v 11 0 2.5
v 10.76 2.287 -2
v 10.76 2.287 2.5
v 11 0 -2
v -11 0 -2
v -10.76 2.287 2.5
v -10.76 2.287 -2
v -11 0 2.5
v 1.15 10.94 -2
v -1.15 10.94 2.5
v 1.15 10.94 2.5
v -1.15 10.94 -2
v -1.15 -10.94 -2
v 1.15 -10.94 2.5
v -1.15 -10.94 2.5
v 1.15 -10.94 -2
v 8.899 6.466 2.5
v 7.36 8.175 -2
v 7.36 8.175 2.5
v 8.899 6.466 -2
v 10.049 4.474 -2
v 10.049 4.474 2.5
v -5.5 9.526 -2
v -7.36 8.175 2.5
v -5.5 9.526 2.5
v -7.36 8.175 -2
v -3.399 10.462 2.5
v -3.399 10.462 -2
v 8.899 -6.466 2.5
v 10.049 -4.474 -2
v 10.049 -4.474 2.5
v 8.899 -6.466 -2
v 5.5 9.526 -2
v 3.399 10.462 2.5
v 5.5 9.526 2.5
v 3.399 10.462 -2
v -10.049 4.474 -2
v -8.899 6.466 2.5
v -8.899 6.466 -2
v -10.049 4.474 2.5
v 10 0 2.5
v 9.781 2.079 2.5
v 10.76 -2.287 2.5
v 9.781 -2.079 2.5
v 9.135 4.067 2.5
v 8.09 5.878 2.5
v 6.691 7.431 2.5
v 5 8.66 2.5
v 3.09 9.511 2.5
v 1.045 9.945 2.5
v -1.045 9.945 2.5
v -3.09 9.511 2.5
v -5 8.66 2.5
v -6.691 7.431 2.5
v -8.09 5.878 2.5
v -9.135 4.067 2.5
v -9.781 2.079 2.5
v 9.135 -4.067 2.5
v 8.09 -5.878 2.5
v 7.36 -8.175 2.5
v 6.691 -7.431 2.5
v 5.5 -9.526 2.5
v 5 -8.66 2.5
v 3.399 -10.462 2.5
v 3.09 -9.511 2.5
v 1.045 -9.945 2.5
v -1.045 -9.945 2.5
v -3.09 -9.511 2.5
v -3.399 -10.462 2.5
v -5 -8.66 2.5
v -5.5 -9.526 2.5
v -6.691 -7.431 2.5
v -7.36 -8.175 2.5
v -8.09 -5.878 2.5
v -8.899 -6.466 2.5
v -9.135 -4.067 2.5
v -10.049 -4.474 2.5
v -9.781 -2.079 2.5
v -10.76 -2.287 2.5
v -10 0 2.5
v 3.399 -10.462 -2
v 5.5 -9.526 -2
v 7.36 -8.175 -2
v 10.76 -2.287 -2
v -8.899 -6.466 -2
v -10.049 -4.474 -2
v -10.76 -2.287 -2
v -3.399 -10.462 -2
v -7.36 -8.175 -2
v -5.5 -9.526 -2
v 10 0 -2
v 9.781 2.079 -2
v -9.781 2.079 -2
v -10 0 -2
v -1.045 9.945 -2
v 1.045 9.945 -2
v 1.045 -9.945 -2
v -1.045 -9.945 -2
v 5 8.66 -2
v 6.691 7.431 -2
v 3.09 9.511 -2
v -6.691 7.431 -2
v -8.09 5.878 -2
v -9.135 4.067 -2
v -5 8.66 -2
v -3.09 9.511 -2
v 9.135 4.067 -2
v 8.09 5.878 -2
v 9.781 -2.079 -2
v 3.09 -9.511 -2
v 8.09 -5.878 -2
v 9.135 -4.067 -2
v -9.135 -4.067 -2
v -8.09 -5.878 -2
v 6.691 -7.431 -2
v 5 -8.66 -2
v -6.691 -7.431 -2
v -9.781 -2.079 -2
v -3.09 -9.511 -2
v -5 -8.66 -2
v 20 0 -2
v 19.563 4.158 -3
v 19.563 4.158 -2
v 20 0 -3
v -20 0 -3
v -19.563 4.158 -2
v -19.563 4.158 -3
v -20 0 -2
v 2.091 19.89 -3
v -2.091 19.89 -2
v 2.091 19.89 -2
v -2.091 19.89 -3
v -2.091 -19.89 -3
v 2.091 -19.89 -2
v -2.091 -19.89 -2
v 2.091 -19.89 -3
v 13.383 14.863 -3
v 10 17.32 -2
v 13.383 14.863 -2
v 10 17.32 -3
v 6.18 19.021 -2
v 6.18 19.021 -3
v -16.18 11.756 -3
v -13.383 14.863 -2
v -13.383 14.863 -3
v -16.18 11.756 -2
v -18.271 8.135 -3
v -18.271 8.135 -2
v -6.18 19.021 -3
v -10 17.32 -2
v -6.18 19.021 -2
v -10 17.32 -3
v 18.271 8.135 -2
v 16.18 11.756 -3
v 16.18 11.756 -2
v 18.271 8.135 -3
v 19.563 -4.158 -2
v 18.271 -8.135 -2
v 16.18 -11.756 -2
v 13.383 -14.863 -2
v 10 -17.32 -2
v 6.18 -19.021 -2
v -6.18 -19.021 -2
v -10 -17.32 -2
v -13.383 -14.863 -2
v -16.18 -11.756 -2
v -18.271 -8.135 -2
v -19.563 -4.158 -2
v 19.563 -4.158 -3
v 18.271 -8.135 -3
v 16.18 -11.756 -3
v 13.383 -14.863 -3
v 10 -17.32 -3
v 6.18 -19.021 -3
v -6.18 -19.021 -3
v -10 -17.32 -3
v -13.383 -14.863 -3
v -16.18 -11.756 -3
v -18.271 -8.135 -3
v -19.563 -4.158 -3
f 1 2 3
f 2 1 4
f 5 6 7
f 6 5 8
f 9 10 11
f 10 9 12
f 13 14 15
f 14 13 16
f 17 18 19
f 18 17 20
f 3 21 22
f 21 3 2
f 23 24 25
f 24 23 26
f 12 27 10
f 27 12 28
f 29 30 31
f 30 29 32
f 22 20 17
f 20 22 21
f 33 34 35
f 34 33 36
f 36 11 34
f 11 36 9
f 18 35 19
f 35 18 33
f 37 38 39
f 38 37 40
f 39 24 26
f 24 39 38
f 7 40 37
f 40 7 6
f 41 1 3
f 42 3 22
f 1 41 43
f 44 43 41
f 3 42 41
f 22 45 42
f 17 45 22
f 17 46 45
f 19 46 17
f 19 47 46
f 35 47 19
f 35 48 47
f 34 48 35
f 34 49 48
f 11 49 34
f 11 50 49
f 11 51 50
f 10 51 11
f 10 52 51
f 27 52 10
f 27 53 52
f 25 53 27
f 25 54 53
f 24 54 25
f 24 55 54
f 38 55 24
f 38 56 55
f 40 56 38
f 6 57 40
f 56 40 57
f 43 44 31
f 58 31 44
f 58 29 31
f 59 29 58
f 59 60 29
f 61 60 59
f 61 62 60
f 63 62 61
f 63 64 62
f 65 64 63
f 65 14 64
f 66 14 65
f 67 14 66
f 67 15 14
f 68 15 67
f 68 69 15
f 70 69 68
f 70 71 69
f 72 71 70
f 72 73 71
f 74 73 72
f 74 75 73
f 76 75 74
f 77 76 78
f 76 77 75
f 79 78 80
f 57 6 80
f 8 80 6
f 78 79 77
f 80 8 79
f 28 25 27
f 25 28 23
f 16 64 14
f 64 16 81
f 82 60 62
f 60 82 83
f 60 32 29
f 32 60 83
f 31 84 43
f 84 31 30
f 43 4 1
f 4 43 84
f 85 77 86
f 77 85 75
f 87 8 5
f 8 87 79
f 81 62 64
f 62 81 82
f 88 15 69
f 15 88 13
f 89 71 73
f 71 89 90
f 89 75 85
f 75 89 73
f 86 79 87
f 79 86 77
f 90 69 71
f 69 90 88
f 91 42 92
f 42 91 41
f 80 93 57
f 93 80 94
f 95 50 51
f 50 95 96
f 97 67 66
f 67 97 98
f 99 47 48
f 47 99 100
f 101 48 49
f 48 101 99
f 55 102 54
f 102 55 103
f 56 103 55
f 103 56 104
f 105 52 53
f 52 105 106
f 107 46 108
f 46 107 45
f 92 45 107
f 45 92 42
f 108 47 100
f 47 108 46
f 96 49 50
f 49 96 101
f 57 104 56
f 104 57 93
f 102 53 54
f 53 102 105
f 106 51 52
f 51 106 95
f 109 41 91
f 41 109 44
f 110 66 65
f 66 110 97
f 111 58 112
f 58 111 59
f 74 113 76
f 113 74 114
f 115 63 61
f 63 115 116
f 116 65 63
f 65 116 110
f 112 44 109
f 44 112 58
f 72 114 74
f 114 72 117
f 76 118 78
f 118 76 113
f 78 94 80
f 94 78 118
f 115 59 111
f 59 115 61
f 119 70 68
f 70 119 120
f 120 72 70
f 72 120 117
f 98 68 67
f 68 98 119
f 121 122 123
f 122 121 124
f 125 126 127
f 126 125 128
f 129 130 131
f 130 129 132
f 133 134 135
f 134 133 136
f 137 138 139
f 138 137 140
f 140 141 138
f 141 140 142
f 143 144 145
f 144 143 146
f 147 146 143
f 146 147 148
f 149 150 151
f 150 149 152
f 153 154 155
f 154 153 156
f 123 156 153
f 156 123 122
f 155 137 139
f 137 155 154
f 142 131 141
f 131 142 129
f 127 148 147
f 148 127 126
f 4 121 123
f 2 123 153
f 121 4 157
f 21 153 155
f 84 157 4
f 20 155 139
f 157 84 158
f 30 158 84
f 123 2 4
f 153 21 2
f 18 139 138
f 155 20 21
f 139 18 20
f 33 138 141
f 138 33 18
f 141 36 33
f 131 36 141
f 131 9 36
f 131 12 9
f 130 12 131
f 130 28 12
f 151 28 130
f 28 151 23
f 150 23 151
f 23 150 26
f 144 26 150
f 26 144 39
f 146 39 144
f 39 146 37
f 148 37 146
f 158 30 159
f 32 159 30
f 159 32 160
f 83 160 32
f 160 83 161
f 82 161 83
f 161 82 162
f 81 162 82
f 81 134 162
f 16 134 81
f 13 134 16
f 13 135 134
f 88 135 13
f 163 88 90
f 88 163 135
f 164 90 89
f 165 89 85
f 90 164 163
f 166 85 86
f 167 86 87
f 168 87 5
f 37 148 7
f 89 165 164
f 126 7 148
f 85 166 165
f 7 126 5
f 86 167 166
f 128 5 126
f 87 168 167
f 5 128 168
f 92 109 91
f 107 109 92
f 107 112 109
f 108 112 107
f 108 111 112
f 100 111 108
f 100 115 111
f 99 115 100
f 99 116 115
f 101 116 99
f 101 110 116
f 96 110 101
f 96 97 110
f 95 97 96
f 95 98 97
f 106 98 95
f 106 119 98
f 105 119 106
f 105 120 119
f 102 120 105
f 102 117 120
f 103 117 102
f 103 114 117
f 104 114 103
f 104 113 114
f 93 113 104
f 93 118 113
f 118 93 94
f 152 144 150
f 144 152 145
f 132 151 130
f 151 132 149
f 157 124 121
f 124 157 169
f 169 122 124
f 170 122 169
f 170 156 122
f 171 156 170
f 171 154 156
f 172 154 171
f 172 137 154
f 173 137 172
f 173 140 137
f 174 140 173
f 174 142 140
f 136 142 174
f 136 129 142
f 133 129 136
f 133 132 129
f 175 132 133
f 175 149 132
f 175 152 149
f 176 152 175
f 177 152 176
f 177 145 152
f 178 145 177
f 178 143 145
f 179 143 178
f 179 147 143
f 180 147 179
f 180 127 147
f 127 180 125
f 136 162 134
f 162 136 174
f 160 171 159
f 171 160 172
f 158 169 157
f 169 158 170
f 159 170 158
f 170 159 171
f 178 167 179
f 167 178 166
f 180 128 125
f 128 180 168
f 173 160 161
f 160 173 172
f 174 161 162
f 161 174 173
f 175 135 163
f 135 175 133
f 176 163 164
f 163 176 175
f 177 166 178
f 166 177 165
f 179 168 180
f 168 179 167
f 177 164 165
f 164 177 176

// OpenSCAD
inner_ring = 22;
h = 5;
difference(){
    cylinder(h=h,d=inner_ring,center=true);
    cylinder(h=h+1,d=inner_ring-2,center=true);
}

translate ([0,0,h*-0.5])cylinder(h=1,d=40,center=true);
